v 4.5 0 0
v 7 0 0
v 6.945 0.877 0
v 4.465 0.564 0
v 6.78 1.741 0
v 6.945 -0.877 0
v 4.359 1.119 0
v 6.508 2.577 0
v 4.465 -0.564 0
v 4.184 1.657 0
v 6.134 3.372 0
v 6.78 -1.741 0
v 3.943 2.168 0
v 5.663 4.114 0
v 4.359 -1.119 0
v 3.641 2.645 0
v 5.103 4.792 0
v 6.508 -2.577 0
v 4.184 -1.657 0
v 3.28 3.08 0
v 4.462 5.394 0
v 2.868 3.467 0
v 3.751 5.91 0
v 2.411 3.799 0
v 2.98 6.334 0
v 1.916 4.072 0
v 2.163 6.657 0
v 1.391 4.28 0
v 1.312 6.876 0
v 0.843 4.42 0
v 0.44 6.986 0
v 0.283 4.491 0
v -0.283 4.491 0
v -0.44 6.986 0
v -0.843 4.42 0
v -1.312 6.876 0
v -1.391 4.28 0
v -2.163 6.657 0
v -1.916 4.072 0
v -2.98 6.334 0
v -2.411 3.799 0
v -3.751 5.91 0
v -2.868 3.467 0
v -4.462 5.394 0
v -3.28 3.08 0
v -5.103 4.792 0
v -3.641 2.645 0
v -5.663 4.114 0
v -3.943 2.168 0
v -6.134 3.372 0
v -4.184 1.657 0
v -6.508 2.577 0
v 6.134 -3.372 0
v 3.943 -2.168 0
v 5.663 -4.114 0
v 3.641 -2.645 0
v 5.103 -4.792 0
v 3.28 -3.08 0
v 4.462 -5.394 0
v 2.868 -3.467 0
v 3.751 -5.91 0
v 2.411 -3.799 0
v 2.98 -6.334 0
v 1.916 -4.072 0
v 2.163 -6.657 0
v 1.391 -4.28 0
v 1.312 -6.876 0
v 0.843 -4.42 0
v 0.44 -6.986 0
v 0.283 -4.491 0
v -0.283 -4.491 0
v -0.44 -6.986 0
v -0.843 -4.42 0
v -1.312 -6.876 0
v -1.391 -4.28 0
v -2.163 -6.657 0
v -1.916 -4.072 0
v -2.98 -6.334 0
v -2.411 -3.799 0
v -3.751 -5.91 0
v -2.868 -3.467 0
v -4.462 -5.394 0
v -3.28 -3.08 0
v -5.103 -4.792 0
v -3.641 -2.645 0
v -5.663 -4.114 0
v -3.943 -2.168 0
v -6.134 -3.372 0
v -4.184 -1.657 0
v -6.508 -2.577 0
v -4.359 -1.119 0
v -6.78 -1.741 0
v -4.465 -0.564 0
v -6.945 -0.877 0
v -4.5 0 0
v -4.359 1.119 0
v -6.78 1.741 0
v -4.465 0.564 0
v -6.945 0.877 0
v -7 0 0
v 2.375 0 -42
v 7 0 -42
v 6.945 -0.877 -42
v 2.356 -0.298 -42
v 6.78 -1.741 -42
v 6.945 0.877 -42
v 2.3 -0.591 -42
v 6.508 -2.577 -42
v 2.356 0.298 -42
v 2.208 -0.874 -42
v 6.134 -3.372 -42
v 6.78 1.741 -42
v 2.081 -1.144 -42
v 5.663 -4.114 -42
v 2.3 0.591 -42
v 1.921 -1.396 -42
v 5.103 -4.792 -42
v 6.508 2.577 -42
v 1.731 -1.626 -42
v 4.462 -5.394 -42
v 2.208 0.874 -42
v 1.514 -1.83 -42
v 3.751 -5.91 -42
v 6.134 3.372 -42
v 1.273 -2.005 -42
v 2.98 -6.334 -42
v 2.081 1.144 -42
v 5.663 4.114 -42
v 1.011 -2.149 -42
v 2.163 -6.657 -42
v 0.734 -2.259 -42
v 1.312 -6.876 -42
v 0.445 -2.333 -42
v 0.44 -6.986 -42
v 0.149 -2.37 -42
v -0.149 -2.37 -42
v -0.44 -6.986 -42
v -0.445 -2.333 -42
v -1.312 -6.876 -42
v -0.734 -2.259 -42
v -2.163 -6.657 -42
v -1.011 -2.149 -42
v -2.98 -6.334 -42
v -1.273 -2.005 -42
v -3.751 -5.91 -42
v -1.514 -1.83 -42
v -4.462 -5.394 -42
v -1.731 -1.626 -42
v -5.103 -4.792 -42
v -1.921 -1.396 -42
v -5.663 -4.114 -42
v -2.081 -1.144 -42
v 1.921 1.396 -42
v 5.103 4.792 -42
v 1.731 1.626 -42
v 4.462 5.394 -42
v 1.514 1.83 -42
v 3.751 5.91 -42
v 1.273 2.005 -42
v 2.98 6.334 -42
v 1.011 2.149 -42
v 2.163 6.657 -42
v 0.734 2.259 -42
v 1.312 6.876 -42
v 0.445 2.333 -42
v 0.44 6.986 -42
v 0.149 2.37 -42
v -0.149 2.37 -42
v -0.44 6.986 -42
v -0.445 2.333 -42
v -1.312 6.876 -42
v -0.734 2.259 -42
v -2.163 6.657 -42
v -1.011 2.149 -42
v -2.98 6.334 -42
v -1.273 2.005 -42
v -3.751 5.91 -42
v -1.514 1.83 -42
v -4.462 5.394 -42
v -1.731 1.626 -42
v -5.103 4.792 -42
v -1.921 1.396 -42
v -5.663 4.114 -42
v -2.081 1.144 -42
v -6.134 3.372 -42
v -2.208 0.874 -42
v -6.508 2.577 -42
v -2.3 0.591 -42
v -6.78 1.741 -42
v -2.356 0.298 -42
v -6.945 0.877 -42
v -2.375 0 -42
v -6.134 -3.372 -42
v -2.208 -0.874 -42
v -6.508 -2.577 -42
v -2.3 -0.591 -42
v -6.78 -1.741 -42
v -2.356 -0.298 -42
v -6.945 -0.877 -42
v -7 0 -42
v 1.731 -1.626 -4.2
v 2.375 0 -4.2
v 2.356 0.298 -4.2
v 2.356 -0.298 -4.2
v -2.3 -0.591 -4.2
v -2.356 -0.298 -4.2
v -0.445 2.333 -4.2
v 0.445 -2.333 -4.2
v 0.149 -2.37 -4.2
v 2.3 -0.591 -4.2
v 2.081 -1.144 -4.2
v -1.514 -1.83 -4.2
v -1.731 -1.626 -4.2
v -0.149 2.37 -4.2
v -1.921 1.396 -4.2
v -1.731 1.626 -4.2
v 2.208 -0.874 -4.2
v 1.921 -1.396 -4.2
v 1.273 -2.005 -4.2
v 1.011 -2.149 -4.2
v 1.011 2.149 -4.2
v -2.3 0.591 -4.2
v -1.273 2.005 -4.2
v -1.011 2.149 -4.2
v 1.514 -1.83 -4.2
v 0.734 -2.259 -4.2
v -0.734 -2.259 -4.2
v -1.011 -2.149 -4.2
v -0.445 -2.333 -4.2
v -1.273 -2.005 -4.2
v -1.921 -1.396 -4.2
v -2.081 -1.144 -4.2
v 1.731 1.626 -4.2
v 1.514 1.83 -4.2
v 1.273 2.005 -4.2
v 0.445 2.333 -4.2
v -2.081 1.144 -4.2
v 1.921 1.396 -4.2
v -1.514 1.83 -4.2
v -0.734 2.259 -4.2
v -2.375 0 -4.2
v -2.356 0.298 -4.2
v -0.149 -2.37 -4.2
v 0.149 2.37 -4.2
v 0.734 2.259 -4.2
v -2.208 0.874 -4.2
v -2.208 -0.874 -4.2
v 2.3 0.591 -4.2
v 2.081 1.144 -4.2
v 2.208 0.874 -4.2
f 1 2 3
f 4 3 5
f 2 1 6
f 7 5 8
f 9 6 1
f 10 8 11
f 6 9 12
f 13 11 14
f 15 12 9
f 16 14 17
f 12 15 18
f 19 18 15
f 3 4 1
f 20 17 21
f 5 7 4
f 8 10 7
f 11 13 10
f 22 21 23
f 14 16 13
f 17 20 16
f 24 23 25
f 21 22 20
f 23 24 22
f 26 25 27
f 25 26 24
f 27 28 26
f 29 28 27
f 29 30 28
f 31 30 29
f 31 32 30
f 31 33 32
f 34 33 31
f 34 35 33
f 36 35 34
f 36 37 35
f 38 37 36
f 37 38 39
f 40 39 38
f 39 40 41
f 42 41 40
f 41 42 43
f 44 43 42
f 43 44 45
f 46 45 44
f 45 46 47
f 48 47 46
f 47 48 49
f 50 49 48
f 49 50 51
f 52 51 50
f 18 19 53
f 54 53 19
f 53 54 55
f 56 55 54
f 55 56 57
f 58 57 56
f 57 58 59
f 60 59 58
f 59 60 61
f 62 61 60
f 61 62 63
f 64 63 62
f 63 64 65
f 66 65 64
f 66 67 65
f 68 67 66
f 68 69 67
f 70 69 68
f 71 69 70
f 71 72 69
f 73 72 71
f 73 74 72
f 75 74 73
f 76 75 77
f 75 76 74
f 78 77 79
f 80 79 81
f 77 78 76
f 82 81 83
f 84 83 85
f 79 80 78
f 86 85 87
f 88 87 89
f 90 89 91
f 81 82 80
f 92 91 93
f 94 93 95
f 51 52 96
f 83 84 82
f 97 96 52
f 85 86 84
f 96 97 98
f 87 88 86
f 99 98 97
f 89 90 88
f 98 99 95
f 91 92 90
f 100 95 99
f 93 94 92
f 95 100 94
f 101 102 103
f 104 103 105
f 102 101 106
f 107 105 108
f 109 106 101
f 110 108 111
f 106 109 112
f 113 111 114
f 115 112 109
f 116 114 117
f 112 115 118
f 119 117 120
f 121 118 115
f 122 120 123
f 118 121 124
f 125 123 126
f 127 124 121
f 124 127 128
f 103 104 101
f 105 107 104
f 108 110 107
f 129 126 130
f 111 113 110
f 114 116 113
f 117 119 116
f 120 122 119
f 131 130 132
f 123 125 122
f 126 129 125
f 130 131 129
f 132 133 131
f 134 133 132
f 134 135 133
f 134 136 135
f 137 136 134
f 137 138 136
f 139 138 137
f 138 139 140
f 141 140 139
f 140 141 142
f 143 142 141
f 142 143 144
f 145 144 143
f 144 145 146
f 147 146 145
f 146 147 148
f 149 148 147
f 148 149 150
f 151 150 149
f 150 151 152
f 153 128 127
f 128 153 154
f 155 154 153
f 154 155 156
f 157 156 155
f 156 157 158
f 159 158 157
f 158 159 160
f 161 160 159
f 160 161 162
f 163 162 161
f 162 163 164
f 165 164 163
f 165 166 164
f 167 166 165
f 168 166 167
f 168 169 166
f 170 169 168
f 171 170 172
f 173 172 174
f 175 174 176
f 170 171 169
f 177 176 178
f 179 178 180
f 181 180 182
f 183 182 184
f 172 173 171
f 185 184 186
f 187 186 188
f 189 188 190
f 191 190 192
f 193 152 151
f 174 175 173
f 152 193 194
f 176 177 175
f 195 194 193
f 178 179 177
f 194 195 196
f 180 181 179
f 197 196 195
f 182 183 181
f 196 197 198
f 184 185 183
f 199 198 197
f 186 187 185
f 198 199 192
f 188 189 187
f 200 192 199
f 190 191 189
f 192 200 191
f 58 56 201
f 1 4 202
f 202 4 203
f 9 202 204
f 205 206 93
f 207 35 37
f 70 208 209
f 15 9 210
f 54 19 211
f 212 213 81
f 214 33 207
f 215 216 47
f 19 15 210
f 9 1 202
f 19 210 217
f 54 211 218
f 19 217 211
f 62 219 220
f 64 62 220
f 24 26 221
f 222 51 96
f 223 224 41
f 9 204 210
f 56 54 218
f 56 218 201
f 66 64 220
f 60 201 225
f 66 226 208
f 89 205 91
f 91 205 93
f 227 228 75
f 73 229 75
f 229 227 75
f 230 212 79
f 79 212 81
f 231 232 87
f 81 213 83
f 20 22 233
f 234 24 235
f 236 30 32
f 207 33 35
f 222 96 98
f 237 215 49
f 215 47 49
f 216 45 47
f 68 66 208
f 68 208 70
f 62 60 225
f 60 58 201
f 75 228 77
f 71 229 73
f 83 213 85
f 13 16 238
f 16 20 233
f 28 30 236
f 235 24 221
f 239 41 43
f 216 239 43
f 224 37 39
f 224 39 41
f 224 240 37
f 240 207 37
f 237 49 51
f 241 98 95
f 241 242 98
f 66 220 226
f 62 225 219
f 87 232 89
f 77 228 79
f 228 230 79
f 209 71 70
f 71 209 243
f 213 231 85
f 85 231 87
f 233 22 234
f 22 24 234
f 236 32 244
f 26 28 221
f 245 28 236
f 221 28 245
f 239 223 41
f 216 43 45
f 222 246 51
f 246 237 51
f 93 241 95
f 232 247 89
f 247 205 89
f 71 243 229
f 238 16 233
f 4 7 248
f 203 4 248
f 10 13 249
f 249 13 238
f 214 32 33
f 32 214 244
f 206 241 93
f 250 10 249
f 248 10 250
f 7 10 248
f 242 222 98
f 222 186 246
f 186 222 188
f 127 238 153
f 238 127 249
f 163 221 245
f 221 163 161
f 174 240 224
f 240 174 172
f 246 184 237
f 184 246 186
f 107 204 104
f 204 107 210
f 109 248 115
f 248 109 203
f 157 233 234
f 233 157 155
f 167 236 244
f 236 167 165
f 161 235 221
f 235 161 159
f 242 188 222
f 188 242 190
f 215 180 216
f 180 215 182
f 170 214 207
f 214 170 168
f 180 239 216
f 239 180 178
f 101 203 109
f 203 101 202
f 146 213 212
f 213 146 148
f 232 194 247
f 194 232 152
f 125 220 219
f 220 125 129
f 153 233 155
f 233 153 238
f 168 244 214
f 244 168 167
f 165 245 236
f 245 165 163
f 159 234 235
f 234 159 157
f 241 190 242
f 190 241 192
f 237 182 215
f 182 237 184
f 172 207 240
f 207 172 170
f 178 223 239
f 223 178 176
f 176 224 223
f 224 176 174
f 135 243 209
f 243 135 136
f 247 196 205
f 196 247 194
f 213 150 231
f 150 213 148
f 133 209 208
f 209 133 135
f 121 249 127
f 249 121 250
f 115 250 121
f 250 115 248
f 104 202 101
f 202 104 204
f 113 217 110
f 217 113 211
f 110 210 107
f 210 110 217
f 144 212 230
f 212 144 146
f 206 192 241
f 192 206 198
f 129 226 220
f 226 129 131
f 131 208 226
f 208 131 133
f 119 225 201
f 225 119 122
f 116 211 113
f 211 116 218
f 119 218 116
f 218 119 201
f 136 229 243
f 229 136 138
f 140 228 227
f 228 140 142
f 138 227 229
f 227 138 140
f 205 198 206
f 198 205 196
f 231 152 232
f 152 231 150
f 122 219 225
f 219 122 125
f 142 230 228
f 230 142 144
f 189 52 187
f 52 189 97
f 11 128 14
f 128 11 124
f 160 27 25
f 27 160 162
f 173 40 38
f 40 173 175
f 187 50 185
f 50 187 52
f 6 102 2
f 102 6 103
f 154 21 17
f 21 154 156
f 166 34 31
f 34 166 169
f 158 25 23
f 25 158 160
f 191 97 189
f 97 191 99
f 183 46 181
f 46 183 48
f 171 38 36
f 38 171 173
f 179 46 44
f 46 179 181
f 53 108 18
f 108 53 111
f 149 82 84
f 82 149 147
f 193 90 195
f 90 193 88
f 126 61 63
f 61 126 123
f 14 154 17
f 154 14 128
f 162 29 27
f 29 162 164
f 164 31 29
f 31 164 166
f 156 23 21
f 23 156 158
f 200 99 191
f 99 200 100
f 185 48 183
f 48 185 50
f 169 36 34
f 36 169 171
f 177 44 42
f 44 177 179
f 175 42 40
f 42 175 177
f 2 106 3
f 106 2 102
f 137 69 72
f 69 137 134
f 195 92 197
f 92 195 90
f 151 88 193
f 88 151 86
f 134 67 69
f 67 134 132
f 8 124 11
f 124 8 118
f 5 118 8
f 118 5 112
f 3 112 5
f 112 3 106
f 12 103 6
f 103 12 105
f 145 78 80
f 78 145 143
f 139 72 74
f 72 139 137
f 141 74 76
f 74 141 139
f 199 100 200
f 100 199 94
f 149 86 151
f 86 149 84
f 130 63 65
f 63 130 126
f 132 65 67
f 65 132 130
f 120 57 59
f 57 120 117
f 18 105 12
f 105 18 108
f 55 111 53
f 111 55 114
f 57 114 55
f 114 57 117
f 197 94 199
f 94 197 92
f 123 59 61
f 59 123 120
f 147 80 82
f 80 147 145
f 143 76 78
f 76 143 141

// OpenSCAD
$fn = 50;


difference() {
	union() {
		translate(v = [0, 0, -42.0000000000]) {
			cylinder(h = 42, r = 7.0000000000);
		}
		cylinder(h = 0, r = 17.0000000000);
	}
	union() {
		translate(v = [0, 0, 0]) {
			rotate(a = [0, 0, 0]) {
				difference() {
					union() {
						#translate(v = [0, 0, -42.0000000000]) {
							cylinder(h = 42, r = 2.2500000000);
						}
						#translate(v = [0, 0, -4.2000000000]) {
							cylinder(h = 4.2000000000, r1 = 2.3750000000, r2 = 4.5000000000);
						}
						#translate(v = [0, 0, -42.0000000000]) {
							cylinder(h = 42, r = 2.3750000000);
						}
						#translate(v = [0, 0, -42.0000000000]) {
							cylinder(h = 42, r = 2.2500000000);
						}
					}
					union();
				}
			}
		}
	}
}
